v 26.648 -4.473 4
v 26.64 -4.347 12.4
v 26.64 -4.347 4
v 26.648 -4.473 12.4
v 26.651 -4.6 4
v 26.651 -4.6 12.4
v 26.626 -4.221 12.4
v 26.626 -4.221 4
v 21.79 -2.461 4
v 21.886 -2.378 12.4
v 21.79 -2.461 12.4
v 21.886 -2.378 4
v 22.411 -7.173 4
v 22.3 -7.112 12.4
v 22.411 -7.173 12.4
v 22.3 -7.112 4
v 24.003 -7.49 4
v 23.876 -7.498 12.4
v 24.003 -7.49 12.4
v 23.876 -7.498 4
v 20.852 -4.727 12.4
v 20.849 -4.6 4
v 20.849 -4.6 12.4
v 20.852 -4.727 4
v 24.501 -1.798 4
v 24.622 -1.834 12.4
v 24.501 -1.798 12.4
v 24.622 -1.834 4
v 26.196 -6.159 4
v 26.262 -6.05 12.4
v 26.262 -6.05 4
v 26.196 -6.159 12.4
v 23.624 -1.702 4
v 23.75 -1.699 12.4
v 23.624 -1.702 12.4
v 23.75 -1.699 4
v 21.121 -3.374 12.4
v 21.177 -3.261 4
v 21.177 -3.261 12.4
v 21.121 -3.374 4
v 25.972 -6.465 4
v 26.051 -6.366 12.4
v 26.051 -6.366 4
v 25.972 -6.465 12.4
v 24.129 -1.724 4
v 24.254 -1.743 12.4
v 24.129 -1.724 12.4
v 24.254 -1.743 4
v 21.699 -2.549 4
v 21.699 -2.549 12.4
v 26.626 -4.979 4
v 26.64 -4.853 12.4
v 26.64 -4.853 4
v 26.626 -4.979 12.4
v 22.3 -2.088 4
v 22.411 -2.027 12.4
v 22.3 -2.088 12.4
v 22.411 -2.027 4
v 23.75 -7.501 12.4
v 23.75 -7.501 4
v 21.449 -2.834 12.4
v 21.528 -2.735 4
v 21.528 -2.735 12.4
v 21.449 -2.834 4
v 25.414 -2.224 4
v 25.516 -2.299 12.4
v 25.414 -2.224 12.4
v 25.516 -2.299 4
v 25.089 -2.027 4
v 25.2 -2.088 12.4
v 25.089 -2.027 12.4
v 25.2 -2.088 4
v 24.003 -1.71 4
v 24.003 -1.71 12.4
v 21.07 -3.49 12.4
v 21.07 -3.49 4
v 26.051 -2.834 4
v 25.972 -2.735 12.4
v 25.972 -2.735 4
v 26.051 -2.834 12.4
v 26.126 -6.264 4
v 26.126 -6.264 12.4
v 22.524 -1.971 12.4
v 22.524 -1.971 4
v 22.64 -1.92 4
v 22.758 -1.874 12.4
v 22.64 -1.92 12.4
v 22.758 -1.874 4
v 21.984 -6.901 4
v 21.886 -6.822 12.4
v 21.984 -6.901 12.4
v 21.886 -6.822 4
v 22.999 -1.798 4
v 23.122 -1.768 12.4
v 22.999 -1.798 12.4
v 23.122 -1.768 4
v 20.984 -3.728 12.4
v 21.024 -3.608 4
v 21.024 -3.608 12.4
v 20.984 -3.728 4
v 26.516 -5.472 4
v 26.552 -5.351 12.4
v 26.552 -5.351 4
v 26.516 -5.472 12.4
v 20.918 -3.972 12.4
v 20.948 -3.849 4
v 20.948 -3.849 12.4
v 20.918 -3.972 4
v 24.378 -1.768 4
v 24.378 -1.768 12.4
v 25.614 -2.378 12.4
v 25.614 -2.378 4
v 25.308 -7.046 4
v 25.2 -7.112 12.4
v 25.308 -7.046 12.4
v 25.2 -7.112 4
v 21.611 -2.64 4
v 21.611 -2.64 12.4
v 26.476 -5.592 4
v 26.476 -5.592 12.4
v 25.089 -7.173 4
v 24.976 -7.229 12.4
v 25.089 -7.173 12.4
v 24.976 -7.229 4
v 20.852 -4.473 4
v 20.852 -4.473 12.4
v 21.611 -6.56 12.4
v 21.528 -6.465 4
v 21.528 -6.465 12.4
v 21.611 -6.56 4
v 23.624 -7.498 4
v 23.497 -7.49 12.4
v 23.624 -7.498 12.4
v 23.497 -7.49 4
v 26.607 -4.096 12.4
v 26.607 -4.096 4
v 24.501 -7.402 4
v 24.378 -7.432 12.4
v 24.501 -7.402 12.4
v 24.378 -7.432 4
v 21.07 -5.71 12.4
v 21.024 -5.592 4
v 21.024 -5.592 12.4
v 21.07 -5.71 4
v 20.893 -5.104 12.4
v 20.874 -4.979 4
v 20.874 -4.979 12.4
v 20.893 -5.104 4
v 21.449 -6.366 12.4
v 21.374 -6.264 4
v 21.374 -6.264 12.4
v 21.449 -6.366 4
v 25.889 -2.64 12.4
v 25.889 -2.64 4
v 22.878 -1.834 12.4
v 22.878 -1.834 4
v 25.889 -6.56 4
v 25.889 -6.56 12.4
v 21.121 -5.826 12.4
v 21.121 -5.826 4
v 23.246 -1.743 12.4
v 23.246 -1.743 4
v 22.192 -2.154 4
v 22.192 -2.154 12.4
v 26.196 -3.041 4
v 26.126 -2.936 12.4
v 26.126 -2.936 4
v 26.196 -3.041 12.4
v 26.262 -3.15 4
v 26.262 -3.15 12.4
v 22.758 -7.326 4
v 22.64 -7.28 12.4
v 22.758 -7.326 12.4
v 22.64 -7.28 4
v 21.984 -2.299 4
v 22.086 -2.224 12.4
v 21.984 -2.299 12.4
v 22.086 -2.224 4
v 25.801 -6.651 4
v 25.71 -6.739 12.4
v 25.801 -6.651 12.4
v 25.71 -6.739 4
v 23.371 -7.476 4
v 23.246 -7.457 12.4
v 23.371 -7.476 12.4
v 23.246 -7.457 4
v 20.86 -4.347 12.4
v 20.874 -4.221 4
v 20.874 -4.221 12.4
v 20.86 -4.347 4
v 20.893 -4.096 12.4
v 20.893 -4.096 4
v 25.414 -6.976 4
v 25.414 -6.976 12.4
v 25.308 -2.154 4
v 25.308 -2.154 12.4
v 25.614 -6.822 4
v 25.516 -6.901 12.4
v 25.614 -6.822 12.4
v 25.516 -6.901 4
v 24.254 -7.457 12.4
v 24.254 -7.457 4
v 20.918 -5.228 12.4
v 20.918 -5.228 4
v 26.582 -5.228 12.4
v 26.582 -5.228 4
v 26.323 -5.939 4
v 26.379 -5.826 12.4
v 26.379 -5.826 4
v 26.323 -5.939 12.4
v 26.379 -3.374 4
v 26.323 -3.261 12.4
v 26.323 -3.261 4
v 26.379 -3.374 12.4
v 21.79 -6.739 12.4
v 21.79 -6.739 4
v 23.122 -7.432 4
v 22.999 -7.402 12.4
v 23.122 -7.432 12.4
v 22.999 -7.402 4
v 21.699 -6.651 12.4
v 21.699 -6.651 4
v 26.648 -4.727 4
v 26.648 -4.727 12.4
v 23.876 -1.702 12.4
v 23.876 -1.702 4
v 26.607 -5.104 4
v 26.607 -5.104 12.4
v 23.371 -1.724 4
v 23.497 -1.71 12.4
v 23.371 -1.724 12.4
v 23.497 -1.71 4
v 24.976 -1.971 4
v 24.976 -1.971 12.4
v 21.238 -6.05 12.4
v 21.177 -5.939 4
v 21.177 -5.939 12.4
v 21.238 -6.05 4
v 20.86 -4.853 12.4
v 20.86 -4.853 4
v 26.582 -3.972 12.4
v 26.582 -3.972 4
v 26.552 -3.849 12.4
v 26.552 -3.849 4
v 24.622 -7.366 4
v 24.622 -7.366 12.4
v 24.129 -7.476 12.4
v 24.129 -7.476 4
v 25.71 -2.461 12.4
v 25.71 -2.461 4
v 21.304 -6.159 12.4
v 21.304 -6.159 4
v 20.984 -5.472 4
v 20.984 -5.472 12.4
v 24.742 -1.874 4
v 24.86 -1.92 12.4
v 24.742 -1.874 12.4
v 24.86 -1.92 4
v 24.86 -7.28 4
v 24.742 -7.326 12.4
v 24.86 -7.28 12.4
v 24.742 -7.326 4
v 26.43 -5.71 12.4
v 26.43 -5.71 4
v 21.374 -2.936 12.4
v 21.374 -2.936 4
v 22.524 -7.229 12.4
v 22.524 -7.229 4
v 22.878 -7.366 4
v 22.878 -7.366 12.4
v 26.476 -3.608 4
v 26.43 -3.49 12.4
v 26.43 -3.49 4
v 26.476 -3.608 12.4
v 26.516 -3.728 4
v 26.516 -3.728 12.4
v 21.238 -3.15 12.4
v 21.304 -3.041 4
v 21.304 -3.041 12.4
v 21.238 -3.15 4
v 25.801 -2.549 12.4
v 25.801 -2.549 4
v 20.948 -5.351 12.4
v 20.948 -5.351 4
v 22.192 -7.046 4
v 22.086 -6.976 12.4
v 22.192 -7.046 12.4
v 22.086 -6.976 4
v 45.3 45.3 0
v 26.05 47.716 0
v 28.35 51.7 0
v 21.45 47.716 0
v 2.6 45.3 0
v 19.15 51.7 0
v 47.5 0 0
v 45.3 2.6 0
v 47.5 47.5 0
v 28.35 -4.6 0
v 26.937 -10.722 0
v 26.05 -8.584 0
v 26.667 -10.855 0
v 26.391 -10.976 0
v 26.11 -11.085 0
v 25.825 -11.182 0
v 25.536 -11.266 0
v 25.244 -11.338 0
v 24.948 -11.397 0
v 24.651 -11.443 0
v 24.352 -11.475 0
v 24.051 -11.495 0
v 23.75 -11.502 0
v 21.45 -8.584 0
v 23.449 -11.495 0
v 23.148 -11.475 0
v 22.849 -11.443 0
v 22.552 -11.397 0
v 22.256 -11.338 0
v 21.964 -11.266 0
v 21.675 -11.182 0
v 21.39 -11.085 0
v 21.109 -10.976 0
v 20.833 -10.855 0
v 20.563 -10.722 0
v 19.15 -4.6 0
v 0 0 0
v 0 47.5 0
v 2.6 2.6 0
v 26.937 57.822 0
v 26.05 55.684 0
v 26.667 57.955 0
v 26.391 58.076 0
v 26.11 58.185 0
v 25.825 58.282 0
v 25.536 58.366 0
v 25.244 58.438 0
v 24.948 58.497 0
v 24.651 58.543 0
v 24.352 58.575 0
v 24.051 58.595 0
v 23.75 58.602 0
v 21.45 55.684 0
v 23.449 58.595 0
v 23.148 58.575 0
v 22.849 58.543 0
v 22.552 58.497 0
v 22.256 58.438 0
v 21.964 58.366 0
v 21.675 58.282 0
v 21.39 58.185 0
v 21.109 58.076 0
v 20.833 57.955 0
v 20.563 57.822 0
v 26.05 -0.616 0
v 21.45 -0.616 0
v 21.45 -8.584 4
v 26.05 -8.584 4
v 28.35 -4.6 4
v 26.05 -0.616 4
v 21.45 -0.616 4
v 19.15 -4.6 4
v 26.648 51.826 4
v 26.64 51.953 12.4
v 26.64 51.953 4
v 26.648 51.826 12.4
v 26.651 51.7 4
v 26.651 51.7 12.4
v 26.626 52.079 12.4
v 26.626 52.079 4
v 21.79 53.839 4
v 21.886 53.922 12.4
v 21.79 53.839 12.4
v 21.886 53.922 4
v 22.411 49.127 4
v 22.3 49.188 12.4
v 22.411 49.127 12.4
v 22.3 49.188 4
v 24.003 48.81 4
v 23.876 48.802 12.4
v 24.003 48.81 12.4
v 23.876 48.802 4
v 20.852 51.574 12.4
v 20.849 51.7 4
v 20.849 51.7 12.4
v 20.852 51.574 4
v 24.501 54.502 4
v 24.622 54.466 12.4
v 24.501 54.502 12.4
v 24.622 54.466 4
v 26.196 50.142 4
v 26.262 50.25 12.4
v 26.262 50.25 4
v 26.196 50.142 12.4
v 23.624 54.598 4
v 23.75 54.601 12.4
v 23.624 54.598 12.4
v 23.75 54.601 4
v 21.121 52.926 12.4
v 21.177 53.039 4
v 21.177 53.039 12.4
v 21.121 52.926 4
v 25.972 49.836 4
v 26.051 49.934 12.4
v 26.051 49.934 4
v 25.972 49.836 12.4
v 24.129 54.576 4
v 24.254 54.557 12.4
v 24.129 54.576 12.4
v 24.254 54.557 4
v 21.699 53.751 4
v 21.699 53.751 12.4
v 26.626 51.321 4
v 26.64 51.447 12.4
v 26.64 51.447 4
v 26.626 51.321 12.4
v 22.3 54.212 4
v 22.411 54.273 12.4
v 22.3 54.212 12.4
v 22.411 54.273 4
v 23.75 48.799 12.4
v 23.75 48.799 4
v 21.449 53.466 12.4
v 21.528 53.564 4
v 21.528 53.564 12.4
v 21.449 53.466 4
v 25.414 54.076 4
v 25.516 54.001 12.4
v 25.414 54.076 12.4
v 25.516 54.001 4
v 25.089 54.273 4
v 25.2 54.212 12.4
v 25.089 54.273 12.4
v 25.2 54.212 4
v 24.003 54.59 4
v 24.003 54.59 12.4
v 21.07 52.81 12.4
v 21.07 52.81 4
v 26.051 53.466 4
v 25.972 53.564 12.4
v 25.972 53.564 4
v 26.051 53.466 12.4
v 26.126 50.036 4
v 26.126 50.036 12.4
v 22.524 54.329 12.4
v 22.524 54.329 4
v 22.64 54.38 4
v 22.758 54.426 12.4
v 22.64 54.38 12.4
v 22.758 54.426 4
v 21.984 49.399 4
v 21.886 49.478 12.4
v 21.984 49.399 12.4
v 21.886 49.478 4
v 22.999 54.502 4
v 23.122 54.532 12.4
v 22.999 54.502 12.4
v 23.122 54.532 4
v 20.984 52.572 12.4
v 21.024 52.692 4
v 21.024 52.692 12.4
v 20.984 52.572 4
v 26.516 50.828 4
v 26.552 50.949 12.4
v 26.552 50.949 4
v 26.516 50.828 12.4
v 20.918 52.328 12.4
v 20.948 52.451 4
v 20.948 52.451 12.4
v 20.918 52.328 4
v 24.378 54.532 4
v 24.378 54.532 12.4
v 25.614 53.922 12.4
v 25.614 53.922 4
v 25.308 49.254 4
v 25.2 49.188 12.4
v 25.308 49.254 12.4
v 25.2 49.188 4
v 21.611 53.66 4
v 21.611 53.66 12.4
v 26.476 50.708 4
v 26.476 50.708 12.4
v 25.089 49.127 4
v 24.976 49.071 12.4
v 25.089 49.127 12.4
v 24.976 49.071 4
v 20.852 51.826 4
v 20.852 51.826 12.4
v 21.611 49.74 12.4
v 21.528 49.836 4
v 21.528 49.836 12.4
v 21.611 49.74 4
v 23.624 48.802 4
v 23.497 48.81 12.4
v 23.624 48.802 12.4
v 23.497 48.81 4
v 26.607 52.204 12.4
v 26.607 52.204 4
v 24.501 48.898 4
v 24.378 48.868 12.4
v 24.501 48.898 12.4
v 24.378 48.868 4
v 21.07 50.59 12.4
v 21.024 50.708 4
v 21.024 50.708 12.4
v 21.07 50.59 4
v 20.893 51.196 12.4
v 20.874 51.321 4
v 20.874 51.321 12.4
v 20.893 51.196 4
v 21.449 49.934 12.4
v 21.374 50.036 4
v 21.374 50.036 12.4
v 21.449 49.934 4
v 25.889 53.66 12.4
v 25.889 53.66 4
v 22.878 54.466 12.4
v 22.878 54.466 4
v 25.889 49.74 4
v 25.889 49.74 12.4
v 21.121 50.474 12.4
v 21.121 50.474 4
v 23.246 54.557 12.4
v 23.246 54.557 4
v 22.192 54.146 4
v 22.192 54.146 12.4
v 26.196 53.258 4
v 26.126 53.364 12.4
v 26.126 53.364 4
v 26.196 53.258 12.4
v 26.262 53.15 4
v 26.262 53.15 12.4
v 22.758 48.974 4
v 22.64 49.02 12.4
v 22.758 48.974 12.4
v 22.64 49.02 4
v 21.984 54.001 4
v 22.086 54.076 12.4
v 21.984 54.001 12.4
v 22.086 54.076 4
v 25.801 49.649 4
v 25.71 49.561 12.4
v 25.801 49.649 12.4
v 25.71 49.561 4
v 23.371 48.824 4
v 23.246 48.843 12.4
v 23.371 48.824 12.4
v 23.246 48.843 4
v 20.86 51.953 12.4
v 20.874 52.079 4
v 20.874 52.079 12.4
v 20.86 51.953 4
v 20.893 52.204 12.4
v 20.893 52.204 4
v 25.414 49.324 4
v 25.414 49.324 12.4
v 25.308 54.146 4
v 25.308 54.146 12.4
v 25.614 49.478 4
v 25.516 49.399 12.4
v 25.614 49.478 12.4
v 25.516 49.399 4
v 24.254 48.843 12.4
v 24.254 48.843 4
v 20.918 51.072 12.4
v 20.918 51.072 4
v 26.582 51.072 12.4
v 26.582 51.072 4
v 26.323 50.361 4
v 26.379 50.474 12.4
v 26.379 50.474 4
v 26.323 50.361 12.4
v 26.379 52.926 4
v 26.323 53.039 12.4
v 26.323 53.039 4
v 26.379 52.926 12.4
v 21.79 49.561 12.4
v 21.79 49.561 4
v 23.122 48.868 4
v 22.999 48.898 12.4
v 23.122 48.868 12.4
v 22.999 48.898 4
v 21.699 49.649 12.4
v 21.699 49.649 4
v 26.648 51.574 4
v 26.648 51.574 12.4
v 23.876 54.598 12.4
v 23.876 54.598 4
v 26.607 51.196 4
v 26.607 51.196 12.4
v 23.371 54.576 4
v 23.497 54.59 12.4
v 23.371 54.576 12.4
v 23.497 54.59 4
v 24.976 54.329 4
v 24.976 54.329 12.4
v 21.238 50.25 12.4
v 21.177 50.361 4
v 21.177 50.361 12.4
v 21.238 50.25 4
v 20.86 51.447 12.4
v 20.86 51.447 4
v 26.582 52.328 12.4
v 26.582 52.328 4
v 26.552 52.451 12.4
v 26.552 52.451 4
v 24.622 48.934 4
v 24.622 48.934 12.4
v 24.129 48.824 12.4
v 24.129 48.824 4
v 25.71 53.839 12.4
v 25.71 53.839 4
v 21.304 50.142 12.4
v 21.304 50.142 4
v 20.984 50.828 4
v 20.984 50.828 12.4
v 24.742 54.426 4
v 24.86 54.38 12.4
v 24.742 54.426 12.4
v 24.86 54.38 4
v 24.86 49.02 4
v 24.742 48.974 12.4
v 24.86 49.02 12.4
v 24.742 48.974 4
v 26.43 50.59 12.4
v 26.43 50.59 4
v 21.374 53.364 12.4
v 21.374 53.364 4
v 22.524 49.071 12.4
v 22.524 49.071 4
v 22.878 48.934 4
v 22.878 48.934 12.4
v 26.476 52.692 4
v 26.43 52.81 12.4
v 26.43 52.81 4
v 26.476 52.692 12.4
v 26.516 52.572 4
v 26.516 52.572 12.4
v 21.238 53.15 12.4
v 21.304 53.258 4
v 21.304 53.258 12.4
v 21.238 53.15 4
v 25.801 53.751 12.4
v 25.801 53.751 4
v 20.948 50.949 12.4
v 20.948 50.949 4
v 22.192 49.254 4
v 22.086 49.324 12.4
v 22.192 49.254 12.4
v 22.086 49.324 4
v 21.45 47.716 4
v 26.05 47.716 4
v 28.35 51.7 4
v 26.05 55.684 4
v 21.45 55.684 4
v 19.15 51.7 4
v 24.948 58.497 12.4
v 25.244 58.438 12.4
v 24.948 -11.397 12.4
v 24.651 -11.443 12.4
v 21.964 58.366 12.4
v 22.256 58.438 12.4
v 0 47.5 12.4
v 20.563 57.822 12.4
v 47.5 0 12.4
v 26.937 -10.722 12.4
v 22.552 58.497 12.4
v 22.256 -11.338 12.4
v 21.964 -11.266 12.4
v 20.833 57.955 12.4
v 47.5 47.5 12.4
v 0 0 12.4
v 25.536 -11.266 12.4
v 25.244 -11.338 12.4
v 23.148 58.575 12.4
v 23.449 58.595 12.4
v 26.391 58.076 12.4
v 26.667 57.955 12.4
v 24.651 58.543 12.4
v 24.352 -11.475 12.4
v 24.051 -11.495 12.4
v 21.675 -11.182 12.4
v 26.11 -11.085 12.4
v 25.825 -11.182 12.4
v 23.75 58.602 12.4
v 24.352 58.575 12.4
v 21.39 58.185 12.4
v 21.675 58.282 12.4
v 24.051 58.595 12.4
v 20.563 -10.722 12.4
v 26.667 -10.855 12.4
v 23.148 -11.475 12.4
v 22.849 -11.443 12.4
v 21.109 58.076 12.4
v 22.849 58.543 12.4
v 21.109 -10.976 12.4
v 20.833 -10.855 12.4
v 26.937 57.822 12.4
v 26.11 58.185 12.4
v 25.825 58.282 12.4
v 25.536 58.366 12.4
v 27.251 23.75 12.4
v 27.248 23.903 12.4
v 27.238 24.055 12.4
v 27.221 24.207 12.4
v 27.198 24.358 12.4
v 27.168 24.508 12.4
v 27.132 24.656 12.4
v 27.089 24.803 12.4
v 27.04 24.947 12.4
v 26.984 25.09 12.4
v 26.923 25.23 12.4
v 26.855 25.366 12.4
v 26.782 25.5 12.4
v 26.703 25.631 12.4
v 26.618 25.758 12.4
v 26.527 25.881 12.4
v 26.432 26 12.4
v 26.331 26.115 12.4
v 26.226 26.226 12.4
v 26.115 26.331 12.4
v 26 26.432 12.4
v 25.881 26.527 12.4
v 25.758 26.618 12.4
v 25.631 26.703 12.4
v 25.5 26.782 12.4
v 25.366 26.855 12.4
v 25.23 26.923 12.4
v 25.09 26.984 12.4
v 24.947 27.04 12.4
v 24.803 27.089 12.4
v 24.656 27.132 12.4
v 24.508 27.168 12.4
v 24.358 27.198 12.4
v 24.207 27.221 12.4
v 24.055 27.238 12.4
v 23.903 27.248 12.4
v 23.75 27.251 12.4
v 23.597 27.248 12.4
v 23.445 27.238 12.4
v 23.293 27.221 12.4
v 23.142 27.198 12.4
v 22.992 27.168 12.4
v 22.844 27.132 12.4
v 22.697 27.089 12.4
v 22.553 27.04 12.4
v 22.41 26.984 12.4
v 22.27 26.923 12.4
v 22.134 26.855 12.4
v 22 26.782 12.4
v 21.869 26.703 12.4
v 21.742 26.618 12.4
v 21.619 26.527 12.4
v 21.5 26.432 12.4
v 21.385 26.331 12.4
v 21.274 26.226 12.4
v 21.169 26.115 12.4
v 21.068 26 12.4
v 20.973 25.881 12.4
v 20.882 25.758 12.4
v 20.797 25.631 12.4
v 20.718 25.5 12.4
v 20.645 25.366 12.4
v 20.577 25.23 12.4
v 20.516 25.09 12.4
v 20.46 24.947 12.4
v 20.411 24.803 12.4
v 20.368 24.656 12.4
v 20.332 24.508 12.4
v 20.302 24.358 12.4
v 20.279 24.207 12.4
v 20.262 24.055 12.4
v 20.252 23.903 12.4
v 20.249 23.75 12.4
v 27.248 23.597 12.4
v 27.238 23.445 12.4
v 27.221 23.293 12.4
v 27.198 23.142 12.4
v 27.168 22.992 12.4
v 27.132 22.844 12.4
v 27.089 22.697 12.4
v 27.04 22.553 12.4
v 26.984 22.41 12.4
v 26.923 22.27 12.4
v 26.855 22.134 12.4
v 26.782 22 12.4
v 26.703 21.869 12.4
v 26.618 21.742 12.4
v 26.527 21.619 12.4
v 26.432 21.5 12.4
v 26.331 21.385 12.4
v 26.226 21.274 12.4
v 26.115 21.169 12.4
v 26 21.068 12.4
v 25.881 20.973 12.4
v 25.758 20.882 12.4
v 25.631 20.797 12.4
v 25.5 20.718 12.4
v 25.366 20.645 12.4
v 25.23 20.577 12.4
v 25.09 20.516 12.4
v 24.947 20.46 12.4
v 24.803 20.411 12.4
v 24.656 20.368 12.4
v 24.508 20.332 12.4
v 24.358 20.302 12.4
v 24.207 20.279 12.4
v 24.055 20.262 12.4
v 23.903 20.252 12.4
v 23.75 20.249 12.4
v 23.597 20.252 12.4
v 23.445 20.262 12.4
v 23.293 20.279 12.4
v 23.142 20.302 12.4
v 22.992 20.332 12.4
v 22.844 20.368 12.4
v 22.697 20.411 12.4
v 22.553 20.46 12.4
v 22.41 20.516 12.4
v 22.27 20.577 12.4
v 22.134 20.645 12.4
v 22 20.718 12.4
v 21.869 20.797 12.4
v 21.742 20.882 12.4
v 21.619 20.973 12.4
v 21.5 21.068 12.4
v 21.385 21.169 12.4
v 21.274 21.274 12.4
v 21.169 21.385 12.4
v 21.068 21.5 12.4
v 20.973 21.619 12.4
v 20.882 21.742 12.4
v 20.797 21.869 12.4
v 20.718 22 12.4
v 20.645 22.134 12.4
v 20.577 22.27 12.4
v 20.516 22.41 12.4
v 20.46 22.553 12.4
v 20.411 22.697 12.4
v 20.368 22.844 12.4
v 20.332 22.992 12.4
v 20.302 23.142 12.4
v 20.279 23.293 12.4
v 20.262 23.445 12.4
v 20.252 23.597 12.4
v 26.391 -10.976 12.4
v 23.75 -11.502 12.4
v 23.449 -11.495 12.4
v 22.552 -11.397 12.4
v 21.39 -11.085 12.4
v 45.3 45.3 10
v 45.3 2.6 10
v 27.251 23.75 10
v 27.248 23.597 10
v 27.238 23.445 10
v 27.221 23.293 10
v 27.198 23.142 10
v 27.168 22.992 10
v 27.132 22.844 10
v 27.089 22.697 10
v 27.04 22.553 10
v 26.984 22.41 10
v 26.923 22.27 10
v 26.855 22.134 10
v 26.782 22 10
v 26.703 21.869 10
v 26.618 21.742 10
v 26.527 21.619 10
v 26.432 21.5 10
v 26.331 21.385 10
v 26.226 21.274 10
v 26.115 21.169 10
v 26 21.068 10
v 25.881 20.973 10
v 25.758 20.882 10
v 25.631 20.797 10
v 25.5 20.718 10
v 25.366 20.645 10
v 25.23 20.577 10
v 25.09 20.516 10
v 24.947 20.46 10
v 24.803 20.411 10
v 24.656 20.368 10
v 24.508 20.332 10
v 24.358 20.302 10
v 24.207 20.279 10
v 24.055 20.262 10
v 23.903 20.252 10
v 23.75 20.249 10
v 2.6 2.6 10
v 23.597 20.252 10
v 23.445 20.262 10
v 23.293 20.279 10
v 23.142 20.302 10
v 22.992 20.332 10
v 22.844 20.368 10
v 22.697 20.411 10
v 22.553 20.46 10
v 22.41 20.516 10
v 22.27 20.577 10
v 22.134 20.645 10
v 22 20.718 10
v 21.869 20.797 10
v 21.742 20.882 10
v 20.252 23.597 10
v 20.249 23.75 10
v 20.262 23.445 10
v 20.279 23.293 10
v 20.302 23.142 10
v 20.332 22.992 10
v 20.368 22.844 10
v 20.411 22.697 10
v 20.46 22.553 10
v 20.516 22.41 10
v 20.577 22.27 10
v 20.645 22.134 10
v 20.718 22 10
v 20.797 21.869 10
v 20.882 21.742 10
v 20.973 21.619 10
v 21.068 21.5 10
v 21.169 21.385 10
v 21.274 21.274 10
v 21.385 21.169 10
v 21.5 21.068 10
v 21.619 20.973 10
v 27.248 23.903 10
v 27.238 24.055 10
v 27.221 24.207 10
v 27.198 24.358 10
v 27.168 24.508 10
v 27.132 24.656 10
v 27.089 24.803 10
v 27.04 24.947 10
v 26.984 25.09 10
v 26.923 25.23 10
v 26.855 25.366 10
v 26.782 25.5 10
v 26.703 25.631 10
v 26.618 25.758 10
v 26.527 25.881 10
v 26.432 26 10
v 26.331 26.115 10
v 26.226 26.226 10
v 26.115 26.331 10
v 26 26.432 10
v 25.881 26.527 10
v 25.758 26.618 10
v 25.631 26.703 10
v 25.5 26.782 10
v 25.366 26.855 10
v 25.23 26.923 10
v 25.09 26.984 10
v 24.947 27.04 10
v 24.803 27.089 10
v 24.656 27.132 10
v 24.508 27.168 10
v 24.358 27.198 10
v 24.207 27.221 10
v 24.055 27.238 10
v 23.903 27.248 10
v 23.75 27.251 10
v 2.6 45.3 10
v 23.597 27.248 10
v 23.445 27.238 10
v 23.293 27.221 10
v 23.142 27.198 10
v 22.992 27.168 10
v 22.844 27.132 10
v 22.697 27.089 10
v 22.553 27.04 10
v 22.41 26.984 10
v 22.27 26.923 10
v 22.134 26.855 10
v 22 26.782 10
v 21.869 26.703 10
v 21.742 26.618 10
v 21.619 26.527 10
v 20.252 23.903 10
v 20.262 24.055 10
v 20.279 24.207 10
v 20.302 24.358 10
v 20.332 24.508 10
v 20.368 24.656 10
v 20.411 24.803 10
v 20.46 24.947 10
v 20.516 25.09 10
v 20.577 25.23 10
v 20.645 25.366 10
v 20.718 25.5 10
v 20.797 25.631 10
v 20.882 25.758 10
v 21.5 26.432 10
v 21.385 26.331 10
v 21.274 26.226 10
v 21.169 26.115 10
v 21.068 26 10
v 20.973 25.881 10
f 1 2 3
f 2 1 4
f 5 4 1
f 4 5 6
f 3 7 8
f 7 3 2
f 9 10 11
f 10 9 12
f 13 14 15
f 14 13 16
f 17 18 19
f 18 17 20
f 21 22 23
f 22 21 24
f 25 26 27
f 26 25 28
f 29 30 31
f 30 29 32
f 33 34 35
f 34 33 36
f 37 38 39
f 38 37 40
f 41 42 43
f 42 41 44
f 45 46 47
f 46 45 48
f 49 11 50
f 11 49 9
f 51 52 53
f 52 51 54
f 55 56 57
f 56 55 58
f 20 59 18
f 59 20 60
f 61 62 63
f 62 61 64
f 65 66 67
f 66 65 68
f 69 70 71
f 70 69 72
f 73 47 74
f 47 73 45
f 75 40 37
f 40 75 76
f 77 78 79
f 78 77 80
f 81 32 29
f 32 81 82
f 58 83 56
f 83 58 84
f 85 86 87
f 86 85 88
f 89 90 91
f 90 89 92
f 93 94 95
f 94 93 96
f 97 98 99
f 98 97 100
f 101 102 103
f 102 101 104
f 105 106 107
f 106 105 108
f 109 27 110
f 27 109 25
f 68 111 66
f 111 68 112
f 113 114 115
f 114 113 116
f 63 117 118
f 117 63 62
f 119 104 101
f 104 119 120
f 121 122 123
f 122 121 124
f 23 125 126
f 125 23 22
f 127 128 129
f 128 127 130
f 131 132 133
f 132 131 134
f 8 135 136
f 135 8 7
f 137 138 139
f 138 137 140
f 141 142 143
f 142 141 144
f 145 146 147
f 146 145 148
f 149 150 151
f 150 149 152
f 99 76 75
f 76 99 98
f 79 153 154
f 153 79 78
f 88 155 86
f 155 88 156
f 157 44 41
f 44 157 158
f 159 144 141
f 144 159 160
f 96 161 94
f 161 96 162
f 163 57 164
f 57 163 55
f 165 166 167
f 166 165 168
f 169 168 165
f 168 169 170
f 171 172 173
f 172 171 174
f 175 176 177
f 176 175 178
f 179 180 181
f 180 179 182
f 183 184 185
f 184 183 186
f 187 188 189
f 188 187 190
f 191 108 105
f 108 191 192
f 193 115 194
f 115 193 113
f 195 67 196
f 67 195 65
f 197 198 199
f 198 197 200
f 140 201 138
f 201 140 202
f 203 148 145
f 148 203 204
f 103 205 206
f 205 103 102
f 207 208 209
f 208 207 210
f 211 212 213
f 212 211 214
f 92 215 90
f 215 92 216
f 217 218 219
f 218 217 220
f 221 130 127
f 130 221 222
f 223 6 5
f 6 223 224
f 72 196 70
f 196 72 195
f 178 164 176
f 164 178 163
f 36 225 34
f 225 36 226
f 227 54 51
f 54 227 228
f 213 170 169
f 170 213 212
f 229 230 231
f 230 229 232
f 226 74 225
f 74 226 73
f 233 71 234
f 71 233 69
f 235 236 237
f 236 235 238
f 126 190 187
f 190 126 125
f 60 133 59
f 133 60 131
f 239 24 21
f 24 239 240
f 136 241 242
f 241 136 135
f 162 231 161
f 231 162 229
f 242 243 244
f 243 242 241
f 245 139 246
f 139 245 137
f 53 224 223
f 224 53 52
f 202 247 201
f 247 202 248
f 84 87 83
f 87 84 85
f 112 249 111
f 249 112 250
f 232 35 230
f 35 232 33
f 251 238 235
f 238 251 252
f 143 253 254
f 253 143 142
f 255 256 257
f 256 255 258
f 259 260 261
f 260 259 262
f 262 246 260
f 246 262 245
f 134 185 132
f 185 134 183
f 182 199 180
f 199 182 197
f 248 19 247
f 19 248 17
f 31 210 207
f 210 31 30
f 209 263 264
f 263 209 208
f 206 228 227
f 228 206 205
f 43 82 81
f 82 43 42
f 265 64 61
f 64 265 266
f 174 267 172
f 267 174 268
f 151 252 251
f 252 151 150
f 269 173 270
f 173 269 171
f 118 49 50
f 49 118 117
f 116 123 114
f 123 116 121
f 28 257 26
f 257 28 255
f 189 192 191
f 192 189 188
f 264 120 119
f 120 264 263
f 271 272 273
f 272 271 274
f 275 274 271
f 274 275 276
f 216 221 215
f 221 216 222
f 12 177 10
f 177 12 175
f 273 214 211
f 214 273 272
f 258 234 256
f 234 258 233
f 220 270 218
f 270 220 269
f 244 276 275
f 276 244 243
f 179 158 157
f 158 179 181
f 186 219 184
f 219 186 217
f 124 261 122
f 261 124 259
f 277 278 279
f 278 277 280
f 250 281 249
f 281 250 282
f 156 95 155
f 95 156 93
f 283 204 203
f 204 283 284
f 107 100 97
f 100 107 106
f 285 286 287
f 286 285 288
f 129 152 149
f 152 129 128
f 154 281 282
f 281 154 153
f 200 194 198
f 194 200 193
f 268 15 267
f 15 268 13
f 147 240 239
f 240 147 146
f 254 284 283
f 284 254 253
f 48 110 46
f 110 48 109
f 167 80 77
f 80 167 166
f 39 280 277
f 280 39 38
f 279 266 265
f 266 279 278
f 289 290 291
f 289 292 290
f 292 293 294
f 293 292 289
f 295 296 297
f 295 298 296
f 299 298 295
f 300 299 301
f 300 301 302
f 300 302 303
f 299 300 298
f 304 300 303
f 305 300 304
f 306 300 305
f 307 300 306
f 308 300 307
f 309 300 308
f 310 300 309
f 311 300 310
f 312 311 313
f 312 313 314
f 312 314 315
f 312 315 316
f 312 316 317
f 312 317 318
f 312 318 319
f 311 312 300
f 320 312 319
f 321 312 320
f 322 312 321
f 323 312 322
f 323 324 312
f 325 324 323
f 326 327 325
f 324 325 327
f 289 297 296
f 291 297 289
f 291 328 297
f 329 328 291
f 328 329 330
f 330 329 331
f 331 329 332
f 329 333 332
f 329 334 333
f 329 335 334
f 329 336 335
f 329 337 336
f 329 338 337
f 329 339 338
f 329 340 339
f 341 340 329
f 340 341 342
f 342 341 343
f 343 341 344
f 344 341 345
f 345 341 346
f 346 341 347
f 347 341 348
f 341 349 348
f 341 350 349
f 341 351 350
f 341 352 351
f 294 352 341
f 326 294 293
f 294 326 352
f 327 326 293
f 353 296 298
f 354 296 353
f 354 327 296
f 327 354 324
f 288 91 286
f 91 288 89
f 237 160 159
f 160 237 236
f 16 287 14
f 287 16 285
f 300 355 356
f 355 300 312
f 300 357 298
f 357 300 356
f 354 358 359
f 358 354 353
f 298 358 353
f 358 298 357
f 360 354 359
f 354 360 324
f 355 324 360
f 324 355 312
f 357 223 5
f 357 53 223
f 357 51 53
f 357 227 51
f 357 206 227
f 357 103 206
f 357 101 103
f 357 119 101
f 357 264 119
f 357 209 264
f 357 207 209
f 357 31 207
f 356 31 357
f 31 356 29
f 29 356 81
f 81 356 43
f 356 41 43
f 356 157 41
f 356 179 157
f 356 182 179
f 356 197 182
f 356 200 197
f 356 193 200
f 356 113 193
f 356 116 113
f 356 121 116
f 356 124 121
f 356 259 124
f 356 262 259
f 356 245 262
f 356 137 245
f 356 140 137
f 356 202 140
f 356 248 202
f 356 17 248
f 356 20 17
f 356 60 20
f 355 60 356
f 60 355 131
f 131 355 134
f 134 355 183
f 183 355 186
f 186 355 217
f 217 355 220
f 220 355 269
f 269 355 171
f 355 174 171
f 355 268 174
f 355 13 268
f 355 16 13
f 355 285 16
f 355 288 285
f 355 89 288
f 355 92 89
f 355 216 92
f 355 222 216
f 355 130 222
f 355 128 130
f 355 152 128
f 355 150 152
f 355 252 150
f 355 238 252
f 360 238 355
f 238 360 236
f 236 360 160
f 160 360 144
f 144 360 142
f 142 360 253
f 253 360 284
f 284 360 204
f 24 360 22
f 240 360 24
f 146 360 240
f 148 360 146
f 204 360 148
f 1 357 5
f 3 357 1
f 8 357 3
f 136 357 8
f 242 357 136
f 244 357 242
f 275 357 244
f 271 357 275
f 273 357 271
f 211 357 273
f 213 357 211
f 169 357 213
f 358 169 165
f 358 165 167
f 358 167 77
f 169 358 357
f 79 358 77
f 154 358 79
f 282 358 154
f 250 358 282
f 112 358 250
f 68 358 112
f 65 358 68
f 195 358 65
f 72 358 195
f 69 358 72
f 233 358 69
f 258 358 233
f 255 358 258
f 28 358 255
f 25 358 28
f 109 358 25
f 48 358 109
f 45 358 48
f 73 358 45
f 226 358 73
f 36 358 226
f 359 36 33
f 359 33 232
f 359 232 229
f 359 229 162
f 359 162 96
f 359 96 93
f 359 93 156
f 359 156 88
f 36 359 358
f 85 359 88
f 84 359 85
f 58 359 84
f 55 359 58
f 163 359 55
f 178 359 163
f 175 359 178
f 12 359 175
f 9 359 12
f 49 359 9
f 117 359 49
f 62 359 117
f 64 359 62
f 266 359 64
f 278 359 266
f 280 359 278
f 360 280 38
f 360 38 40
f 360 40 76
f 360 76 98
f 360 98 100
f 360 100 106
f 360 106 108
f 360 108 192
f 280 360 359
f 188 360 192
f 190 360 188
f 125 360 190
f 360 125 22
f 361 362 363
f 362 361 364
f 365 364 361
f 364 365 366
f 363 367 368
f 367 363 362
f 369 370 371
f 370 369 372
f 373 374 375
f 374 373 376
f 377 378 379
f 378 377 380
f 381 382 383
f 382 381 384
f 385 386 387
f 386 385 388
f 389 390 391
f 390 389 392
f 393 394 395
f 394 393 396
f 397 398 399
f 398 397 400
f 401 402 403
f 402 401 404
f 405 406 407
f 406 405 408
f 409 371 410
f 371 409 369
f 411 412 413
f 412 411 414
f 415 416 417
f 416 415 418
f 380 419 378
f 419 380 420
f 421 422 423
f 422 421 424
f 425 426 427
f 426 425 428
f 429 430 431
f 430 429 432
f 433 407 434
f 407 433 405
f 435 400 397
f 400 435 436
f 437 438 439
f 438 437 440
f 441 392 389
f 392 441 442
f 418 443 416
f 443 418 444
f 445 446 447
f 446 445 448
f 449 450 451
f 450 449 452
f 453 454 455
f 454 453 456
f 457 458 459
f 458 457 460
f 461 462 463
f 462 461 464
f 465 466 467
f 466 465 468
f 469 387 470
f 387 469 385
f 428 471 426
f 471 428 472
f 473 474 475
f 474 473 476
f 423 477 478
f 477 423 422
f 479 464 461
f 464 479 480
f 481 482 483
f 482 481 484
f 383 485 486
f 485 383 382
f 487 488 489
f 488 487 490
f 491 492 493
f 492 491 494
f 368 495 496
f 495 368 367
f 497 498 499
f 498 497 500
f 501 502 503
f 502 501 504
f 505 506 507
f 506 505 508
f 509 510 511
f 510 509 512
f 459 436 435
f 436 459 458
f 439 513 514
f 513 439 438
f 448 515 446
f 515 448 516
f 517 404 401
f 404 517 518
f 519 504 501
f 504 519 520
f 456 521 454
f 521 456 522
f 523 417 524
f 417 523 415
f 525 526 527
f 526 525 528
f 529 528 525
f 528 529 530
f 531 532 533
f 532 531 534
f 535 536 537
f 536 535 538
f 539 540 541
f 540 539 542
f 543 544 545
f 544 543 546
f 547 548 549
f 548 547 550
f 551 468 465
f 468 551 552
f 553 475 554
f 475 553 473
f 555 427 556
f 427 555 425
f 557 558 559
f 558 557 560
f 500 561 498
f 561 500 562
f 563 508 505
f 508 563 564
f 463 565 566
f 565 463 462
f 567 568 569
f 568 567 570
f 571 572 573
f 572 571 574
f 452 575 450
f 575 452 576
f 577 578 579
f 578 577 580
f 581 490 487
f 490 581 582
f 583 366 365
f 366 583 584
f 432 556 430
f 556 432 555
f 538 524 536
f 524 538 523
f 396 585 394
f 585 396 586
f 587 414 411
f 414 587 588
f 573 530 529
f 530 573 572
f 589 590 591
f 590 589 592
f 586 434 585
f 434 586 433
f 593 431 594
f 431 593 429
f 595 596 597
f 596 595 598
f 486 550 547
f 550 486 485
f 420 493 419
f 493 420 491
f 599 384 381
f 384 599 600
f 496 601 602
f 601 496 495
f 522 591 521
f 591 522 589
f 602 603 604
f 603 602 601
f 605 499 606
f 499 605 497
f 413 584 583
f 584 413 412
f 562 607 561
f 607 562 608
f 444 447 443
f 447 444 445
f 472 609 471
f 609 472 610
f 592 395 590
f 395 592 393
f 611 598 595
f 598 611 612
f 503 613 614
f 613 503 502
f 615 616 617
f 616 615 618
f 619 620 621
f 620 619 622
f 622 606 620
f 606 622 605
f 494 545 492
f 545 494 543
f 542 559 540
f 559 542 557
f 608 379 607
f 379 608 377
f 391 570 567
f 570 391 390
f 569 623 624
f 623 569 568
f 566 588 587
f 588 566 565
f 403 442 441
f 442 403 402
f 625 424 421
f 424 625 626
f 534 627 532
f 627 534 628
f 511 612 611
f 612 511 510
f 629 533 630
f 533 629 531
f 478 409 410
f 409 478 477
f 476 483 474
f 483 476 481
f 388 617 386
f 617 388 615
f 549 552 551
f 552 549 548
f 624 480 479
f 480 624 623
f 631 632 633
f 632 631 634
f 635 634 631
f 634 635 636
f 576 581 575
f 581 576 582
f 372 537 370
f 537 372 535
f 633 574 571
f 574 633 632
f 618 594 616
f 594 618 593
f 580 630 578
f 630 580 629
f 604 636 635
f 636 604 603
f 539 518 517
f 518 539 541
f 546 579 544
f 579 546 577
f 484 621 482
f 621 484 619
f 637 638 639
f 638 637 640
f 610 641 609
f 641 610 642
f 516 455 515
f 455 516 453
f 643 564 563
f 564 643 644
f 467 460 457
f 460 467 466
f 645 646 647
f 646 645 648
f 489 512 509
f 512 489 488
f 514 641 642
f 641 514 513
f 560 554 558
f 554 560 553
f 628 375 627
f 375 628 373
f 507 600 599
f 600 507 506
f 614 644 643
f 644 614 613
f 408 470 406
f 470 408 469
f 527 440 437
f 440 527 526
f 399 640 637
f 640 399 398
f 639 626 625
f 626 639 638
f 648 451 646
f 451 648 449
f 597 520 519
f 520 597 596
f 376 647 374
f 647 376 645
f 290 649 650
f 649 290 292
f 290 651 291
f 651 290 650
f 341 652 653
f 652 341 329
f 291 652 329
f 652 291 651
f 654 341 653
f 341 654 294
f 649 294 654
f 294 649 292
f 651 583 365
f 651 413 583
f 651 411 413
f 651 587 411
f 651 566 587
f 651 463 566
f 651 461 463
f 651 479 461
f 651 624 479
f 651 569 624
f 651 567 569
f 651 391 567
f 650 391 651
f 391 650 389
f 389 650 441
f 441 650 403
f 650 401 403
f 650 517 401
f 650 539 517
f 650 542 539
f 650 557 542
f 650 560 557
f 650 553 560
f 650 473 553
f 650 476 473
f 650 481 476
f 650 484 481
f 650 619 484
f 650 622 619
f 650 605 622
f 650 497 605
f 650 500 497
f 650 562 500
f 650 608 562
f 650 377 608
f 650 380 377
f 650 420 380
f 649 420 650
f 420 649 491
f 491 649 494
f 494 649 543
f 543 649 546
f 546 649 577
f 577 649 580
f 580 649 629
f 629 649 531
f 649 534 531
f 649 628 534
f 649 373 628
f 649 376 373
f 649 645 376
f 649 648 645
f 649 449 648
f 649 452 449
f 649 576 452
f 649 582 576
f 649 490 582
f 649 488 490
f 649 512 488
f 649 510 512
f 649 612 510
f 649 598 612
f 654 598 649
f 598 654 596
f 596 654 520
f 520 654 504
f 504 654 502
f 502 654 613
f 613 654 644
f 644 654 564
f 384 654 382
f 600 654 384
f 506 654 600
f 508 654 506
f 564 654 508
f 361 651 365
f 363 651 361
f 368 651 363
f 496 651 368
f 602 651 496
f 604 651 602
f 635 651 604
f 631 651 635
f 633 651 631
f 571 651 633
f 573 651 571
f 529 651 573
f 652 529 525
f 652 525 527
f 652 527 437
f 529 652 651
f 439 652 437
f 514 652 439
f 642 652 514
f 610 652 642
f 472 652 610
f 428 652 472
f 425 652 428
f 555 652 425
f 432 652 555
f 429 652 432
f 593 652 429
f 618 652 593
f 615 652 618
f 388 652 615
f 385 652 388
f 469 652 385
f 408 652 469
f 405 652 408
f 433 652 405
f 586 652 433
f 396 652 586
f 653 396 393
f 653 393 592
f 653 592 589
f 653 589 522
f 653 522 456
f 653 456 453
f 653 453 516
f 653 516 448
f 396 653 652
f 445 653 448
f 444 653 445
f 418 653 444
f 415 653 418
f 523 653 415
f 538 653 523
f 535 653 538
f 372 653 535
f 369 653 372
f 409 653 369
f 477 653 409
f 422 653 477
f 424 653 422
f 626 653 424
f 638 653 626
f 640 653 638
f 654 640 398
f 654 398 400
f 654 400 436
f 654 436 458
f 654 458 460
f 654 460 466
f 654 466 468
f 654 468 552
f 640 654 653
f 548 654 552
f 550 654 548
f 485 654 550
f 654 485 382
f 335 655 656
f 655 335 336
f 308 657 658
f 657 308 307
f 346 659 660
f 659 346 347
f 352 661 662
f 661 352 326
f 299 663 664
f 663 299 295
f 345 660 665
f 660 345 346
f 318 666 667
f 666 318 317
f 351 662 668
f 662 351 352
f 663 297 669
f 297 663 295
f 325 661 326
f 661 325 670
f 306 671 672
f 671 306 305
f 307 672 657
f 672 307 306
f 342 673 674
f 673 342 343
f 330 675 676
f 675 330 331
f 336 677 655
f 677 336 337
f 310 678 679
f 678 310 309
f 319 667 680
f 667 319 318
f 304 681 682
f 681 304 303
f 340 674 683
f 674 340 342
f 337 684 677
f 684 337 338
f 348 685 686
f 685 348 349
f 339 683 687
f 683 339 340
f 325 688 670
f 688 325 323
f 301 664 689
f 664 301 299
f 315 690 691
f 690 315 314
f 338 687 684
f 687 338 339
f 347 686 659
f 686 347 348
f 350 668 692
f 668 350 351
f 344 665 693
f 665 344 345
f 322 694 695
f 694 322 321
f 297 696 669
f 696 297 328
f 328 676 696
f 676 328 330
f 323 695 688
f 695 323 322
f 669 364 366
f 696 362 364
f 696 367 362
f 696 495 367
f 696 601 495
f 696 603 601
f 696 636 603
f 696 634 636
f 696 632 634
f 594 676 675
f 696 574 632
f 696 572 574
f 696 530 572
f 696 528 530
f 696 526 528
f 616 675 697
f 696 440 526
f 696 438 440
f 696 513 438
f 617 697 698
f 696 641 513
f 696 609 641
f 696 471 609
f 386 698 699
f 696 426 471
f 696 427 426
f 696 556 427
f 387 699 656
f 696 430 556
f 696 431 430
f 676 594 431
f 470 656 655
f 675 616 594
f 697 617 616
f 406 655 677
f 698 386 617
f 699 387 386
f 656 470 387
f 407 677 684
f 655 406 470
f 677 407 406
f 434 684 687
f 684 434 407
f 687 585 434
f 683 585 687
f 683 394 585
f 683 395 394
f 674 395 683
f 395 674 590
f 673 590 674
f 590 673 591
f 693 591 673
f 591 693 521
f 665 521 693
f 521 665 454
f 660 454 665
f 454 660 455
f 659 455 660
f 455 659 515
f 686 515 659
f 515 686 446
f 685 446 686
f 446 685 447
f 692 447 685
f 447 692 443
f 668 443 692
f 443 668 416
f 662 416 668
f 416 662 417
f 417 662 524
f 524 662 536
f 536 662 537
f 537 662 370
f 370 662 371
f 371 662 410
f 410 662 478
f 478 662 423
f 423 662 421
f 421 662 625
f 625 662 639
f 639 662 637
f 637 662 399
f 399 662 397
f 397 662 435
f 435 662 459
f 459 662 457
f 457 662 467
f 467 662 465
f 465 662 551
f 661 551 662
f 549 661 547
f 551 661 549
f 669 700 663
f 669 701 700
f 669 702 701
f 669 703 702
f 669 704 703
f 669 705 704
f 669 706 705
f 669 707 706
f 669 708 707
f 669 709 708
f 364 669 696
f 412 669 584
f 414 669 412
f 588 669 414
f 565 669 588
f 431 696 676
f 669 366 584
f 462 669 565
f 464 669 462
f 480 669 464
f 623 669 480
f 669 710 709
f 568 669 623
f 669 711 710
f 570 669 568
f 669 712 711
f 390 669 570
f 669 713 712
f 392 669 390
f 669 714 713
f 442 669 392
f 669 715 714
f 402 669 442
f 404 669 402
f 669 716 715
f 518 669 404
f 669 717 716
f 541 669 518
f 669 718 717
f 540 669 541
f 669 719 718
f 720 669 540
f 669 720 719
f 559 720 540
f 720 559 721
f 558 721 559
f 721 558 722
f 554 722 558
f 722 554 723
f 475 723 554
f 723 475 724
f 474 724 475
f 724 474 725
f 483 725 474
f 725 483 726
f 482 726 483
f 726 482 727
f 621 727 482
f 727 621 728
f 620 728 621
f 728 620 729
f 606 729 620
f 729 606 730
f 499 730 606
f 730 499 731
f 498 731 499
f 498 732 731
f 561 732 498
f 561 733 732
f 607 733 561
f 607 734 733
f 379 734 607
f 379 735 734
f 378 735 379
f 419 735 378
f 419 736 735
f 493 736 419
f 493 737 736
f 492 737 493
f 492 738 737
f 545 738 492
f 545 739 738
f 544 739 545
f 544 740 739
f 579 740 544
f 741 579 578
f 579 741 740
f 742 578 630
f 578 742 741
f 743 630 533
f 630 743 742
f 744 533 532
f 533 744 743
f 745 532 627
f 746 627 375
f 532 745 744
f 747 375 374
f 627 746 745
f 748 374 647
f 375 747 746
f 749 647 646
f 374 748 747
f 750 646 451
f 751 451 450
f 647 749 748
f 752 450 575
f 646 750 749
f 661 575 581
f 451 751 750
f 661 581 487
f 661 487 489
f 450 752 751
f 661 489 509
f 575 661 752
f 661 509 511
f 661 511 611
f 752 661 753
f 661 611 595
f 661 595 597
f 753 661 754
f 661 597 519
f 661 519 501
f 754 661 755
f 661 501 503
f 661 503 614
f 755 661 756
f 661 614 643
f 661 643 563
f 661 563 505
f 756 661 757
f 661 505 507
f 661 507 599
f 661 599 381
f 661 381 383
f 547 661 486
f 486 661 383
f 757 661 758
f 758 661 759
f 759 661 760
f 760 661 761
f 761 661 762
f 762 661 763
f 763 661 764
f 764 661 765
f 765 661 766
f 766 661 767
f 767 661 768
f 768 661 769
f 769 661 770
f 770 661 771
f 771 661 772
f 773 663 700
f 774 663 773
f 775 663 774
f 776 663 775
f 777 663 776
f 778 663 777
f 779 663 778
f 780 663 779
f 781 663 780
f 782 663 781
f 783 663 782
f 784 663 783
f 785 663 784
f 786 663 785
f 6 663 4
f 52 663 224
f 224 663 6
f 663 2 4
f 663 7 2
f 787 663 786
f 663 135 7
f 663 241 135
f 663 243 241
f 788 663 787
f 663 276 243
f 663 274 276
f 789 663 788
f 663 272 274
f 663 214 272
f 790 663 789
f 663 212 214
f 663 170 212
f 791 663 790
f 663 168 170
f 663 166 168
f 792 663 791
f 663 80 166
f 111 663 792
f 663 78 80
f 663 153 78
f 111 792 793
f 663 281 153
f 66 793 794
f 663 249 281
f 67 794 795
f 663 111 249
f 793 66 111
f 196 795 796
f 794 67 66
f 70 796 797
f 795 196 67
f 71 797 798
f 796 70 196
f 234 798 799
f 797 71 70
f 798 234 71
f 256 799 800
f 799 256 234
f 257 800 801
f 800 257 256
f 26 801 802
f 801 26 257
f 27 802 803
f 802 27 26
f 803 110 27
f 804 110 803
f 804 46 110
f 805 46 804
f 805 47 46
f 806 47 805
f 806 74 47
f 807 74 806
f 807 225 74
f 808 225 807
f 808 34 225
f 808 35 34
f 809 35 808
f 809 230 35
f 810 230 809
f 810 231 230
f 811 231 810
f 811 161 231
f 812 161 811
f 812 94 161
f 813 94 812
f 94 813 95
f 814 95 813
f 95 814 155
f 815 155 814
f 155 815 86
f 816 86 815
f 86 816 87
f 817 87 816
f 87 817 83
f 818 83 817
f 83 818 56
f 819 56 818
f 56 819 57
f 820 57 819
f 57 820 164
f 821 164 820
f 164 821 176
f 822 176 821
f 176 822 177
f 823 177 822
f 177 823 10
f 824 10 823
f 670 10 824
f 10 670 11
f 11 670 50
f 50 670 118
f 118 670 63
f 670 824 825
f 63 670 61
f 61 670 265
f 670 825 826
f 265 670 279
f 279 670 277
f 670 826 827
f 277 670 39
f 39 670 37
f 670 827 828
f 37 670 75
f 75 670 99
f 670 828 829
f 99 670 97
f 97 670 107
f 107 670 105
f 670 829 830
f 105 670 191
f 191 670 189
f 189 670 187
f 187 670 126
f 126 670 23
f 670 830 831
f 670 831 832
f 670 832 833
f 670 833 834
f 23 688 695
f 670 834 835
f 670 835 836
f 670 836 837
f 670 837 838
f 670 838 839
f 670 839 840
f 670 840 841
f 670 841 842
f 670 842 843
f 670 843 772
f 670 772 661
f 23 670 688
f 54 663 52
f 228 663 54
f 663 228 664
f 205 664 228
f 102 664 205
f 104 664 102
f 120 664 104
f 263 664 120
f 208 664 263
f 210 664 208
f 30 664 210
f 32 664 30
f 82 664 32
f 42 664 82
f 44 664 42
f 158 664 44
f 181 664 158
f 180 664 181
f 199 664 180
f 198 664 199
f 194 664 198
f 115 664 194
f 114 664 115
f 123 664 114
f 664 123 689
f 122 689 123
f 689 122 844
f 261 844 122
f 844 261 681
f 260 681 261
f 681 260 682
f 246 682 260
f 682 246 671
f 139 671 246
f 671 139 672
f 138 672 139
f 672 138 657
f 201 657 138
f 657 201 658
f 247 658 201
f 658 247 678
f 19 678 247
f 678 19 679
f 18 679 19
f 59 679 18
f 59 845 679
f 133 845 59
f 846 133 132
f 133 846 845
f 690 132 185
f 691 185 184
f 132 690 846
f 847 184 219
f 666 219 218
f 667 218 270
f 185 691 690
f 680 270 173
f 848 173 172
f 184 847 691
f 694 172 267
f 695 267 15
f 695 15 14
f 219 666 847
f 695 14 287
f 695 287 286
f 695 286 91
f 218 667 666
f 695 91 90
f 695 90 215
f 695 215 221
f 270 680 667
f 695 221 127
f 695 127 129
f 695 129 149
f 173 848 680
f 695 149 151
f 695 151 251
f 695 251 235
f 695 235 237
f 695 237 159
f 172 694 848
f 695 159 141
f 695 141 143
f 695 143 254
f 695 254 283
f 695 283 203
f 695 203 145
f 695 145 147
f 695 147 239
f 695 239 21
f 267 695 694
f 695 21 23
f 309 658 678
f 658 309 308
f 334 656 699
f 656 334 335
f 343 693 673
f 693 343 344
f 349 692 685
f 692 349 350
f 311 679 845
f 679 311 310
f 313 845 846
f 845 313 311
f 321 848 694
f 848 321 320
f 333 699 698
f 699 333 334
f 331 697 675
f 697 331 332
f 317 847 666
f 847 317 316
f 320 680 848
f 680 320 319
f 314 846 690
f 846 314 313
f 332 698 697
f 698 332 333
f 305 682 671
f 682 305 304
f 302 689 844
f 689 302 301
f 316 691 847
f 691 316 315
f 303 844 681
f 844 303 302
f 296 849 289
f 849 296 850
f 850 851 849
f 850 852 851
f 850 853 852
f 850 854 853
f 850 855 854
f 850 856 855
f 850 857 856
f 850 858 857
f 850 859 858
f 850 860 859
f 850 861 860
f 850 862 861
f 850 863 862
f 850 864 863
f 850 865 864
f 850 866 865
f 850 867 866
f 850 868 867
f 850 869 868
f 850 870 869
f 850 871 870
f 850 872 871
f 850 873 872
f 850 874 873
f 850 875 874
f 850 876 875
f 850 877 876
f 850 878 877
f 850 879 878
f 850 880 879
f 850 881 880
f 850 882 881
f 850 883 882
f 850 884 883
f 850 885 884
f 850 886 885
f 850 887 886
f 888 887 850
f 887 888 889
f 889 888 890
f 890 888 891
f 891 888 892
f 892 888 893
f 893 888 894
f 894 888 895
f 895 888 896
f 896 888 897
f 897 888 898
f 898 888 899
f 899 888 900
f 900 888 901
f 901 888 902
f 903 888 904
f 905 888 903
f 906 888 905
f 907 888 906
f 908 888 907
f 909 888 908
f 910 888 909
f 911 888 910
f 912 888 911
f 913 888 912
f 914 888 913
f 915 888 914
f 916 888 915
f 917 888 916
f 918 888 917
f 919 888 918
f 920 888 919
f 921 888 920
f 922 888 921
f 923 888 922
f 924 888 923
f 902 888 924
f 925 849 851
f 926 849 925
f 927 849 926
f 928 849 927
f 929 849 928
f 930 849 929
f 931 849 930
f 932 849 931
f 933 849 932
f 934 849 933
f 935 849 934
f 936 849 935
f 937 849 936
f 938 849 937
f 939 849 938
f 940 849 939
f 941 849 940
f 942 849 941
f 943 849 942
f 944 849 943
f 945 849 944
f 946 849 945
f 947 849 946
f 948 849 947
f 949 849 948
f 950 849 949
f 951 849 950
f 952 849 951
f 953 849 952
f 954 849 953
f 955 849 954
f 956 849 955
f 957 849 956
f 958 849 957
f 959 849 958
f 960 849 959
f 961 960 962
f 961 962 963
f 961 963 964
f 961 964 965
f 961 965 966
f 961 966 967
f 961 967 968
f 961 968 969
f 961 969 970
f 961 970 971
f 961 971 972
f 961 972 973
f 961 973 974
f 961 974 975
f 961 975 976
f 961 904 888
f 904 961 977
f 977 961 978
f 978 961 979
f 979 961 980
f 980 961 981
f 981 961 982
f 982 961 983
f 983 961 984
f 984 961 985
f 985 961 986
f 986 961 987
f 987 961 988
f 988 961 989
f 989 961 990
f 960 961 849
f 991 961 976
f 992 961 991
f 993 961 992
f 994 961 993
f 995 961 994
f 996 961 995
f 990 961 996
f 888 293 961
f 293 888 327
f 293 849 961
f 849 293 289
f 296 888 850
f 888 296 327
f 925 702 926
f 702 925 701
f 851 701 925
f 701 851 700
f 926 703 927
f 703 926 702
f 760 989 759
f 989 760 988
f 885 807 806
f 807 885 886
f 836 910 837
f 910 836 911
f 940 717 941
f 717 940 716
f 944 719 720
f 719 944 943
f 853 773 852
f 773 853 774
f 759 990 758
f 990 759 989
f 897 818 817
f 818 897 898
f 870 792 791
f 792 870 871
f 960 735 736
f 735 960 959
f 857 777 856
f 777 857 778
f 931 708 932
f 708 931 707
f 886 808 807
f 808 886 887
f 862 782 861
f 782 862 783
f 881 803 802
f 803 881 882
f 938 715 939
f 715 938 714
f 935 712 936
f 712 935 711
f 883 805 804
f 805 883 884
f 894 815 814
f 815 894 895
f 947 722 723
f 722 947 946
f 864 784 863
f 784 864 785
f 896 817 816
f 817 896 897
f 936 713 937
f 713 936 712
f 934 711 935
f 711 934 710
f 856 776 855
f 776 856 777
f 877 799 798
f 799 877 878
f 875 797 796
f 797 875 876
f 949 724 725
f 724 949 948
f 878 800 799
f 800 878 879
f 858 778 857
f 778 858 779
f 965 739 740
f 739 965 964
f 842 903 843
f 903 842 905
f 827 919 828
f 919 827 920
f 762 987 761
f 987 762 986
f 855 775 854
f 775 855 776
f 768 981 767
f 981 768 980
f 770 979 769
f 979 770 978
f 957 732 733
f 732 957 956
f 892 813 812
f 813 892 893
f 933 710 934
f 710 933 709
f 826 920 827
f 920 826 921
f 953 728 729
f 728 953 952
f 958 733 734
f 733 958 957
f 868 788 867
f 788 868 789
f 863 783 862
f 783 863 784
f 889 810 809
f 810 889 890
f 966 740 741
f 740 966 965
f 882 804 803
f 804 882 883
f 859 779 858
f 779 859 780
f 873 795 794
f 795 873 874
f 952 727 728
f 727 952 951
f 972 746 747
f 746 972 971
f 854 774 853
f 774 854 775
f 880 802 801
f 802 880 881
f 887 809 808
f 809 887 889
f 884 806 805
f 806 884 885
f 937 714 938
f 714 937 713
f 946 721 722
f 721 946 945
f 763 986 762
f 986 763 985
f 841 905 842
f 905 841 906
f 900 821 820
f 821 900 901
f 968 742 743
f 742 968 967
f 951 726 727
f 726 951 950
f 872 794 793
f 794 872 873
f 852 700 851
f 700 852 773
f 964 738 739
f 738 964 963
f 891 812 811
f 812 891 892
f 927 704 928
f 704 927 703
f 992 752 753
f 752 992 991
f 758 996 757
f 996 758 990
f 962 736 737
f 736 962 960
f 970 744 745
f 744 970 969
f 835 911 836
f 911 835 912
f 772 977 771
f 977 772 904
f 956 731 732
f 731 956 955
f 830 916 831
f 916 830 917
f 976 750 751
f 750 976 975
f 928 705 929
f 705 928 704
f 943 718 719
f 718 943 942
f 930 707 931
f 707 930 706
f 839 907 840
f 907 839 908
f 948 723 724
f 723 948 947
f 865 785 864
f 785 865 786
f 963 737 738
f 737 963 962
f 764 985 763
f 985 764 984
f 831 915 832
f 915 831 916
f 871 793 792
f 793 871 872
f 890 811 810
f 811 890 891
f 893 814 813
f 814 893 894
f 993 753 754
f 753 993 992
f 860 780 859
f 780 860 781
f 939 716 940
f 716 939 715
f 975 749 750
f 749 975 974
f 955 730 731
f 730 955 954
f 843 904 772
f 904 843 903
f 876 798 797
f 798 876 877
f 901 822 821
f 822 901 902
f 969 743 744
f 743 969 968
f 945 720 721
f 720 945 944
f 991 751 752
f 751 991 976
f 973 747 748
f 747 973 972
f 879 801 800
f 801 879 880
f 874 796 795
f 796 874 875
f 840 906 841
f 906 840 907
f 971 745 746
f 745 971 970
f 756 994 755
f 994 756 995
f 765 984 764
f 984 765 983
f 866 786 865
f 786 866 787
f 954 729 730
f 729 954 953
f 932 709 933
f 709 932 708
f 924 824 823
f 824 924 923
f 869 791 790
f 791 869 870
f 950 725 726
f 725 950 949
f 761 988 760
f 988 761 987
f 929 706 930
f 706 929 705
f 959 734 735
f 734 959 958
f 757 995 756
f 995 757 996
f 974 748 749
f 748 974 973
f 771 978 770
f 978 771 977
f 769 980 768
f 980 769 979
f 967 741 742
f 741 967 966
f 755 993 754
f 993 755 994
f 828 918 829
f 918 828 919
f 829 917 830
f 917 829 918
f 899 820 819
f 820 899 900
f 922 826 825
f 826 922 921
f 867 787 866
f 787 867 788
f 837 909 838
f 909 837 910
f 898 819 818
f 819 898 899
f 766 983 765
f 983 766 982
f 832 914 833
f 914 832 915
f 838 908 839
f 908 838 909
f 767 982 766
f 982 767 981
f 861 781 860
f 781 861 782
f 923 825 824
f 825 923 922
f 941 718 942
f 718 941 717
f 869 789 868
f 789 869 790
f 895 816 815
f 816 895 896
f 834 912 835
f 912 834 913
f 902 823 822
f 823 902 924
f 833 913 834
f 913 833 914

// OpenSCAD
include <MCAD/nuts_and_bolts.scad>

min_thickness=2.4;
2min_thickness=2 * min_thickness;
motor_xy=[
    42.3,
    42.3
];

tray_z=10;

clearance_loose=0.4;
2clearance_loose=2*clearance_loose;
clearance_tight=0.2;
2clearance_tight=2*clearance_tight;

fn=72*2;
$fn=fn;

module cylinder_outer(height,radius,fn=fn) {
   fudge = 1/cos(180/fn);
   cylinder(h=height,r=radius*fudge,$fn=fn);
}

function AddVect2(vect, num) = [vect[0] + num, vect[1] + num];

function AddVect2Y(vect, num, y) = [vect[0] + num, vect[1] + num, y];

module _tray(cutout_only) {
    if (cutout_only) {
        translate([
            min_thickness + clearance_tight,
            min_thickness + clearance_tight,
            0
        ]) cube(AddVect2Y(motor_xy, 2clearance_tight, tray_z));
    } else {
        cube(AddVect2Y(motor_xy, 2min_thickness + 2clearance_tight, tray_z + min_thickness));
    }
}

bolt_size=5;

module _nutHolder(cutout_only) {
    if (cutout_only) {
        // 
        cylinder_outer(tray_z * 2, (bolt_size + 2clearance_loose) / 2);
        nutHole(bolt_size);
    } else {
        cylinder_outer(tray_z + min_thickness, METRIC_NUT_AC_WIDTHS[bolt_size] * .75);
    }
}

module Top() {
    mid_pt=motor_xy.x/2 + min_thickness + clearance_tight;
    nut_holder_pts=[
        [mid_pt, -METRIC_NUT_AC_WIDTHS[bolt_size] * .5],
        [mid_pt, motor_xy.y + 2min_thickness + METRIC_NUT_AC_WIDTHS[bolt_size] * .5]
    ];

    difference() {
        hull() {
            _tray(false);
            translate([nut_holder_pts[0].x, nut_holder_pts[0].y, 0]) _nutHolder(false);
            translate([nut_holder_pts[1].x, nut_holder_pts[1].y, 0]) _nutHolder(false);
        }

        _tray(true);
        translate([nut_holder_pts[0].x, nut_holder_pts[0].y, 0]) _nutHolder(true);
        translate([nut_holder_pts[1].x, nut_holder_pts[1].y, 0]) _nutHolder(true);

        translate([
            mid_pt,
            mid_pt,
            0
        ]) cylinder_outer(tray_z * 2, 7/2);
    }
}

Top();
